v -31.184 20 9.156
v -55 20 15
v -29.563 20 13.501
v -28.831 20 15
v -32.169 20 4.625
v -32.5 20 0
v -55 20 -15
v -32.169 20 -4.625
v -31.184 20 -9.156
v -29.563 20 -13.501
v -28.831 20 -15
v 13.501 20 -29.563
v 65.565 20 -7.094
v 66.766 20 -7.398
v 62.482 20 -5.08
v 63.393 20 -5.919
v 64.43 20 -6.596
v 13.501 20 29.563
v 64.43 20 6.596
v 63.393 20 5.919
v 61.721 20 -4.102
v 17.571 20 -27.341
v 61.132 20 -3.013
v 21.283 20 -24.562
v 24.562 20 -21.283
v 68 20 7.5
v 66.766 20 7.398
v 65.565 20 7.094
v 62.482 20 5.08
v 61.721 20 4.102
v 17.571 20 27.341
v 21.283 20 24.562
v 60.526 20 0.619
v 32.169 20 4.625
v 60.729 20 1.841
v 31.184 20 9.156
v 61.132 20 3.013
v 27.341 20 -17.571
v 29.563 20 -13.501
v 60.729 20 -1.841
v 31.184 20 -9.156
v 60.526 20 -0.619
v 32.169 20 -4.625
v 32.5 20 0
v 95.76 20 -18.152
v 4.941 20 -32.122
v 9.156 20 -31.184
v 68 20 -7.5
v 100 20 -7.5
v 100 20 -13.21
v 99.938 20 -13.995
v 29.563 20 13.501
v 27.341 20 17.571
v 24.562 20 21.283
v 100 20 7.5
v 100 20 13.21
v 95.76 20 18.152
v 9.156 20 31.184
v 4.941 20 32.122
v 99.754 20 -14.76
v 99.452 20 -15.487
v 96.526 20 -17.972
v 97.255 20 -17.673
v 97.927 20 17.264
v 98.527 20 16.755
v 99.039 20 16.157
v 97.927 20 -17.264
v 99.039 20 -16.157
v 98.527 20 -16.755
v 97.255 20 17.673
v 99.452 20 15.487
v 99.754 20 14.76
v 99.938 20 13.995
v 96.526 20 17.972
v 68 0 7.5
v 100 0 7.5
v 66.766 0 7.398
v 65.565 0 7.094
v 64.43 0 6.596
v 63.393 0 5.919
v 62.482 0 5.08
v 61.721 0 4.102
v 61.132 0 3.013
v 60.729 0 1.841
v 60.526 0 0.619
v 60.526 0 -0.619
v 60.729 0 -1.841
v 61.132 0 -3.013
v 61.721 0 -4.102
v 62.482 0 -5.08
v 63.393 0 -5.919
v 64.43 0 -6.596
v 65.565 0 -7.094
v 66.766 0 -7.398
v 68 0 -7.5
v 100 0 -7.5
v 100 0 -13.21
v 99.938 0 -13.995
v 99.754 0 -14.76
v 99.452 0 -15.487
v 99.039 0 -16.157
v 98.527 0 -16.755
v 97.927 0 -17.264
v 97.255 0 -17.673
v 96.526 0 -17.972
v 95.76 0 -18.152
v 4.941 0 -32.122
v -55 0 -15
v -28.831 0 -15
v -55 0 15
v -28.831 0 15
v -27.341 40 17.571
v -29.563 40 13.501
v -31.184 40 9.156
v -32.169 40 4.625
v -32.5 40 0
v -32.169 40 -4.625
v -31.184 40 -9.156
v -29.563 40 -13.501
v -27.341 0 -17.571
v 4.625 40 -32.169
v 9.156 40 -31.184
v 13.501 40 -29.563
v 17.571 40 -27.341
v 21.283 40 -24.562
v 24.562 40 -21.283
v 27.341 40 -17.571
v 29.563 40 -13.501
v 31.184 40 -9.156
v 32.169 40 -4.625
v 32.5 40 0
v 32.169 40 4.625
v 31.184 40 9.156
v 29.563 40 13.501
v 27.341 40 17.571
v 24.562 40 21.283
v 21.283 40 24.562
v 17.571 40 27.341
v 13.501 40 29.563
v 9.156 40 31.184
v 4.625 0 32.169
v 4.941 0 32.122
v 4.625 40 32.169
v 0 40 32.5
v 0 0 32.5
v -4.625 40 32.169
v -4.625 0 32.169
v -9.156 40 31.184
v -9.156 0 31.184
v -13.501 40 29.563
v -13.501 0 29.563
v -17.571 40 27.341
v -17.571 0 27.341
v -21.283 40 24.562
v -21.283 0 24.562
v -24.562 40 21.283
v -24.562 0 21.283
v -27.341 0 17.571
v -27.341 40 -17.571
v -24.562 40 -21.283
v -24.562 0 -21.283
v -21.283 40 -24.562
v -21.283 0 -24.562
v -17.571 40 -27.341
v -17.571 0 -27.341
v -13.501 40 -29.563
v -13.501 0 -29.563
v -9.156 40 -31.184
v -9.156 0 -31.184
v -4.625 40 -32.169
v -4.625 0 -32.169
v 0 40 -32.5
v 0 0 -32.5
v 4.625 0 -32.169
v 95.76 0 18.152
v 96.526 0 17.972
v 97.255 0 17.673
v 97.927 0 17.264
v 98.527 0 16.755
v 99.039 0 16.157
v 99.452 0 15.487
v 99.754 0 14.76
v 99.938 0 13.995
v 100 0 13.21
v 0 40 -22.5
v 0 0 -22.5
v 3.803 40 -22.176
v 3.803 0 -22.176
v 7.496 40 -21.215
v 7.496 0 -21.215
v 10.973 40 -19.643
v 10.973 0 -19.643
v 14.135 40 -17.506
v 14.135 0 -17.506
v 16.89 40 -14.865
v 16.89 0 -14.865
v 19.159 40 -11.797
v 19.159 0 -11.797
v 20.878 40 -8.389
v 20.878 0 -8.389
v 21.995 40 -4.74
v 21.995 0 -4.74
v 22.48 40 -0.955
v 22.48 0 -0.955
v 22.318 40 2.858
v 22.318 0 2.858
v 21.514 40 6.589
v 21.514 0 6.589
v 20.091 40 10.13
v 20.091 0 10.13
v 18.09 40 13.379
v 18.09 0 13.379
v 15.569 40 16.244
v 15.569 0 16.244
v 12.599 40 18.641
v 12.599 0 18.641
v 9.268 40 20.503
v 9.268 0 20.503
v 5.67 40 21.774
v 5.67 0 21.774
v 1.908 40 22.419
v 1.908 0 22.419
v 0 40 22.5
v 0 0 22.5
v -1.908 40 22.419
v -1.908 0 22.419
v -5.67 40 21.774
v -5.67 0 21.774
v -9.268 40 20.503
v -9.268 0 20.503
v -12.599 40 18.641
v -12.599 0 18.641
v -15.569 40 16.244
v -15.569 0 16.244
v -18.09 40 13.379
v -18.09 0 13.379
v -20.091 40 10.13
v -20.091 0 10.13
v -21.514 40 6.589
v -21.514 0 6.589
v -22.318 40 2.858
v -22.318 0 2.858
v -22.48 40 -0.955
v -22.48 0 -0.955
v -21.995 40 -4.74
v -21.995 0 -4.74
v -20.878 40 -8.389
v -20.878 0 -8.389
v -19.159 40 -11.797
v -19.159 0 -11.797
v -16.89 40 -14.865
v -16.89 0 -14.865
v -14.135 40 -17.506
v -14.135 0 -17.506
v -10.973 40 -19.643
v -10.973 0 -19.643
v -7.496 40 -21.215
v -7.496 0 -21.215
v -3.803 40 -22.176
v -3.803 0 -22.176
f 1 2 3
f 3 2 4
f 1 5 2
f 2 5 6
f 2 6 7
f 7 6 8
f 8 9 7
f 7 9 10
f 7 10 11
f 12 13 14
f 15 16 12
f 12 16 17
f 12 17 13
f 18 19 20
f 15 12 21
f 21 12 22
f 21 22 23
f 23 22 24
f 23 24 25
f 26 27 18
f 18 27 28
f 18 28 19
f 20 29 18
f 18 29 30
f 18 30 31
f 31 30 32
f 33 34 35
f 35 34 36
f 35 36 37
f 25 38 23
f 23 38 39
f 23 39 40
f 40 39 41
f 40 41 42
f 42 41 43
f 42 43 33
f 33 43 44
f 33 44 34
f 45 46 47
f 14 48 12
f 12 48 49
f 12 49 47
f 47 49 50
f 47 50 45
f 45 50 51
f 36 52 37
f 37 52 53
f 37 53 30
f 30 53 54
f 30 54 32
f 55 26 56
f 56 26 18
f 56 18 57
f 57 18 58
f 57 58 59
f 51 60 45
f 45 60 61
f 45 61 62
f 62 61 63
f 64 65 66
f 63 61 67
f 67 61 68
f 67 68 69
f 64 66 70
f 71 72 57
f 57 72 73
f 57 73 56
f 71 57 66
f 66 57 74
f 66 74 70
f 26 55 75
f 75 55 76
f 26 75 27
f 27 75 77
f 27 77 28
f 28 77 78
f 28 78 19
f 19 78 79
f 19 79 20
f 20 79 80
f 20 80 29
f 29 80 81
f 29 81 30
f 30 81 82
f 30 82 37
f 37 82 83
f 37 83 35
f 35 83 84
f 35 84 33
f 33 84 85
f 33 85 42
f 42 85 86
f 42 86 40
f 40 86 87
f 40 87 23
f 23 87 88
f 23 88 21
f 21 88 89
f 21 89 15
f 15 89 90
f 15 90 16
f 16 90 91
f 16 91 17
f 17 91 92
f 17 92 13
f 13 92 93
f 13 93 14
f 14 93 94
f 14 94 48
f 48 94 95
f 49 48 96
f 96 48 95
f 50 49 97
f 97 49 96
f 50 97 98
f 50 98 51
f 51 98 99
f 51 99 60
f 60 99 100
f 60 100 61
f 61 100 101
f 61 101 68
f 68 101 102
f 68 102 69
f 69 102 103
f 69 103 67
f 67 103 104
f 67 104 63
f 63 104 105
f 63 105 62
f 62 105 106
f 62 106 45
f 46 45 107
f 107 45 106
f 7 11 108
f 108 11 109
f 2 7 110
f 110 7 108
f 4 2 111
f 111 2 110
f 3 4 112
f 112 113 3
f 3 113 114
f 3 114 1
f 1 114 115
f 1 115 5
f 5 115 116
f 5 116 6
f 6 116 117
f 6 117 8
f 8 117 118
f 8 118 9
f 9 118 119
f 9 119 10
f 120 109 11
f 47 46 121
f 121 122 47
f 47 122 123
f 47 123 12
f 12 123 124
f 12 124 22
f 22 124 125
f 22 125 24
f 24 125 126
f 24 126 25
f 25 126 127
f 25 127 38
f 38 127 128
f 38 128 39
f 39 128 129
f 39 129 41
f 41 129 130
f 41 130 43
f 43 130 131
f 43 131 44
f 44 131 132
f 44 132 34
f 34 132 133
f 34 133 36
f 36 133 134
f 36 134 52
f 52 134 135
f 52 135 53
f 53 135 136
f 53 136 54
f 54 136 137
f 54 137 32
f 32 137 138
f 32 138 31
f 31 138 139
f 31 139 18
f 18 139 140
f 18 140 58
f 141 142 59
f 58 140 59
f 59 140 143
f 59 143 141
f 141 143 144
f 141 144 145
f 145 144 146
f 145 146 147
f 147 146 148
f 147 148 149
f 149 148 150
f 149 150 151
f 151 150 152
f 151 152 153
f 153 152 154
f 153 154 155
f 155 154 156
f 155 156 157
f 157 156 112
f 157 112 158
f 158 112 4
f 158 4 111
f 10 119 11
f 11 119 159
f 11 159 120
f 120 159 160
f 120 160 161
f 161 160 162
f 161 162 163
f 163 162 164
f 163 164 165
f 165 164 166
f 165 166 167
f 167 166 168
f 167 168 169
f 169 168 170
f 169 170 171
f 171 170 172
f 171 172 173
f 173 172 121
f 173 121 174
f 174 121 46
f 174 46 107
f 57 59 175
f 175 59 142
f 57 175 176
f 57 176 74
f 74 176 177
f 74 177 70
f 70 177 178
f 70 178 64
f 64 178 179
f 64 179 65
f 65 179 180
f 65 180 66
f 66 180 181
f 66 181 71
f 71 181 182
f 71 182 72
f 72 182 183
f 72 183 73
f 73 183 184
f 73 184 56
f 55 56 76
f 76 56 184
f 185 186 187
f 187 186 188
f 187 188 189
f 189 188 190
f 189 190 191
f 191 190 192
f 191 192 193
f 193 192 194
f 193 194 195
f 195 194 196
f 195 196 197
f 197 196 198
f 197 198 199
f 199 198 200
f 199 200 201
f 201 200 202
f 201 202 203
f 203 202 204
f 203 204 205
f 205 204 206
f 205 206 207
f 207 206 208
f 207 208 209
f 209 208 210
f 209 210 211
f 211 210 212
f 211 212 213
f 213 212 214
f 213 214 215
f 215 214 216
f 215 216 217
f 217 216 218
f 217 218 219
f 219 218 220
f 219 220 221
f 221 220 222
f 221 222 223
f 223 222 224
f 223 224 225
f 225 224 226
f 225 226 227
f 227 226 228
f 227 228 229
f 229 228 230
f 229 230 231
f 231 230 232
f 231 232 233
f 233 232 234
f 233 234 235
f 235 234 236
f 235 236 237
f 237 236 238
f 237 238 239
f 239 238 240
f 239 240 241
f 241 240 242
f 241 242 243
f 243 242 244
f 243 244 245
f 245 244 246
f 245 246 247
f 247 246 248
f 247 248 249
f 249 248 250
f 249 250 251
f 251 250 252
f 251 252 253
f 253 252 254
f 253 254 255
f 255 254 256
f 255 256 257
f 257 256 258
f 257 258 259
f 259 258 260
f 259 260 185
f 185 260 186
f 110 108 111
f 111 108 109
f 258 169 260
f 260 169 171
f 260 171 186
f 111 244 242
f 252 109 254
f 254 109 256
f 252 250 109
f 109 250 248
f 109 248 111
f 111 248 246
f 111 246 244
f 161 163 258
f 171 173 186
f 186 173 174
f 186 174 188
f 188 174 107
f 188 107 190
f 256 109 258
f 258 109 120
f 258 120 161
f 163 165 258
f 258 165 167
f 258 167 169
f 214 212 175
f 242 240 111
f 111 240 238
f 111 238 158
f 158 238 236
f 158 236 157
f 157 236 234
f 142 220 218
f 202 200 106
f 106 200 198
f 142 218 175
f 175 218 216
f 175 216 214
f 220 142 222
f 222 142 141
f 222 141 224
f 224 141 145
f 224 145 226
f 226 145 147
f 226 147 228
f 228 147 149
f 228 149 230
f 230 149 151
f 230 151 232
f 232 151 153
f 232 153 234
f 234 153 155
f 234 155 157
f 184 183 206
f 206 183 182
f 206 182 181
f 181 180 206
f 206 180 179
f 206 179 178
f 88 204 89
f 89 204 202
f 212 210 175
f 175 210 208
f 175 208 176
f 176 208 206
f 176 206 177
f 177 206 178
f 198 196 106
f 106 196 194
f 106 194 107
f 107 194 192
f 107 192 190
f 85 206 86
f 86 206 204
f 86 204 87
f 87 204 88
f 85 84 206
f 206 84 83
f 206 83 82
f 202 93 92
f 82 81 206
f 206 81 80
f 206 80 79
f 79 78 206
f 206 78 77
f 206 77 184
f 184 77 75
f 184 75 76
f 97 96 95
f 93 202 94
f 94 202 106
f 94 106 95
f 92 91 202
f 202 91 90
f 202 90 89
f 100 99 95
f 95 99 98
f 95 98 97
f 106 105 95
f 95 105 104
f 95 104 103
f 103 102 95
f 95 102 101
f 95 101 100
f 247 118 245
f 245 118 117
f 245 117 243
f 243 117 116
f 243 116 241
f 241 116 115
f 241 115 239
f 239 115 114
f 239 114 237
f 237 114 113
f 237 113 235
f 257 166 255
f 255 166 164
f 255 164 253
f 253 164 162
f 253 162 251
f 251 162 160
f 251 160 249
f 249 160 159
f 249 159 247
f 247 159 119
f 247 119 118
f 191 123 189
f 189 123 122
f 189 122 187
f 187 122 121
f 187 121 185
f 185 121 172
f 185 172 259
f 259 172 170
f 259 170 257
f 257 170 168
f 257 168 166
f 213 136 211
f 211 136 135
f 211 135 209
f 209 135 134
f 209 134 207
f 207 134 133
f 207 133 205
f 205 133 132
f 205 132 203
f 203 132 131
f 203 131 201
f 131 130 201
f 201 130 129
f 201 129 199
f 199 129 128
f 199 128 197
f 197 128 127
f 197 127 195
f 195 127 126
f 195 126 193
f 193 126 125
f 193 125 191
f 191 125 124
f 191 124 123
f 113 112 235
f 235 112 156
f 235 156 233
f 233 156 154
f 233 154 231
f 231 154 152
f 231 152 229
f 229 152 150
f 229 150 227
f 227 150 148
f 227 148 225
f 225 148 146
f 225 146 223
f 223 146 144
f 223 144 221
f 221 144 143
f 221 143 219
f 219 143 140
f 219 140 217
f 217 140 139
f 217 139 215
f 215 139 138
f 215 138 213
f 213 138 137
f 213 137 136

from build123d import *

# Parameters (mm, degrees)
SKETCH1_R           = 22.5
BOSS_EXTRUDE4_DEPTH = 20
SKETCH1_6_R         = 22.5
BOSS_EXTRUDE5_DEPTH = 40


with BuildPart() as part:
    # Sketch1 → Boss-Extrude4 (new body)
    with BuildSketch(Plane(origin=(0, 0, 0), x_dir=(1, 0, 0), z_dir=(0, 1, 0))):
        with BuildLine():
            Line((68, 7.5), (100, 7.5))
            Line((100, 7.5), (100, 13.210304894))
            ThreePointArc((100, 13.210304894), (98.794789747, 16.466003095), (95.760171689, 18.152180955))
            Line((95.760171689, 18.152180955), (4.941115981, 32.122194397))
            ThreePointArc((4.941115981, 32.122194397), (-14.696219934, 28.987430373), (-28.831406487, 15))
            Line((-28.831406487, 15), (-55, 15))
            Line((-55, 15), (-55, -15))
            Line((-55, -15), (-28.831406487, -15))
            ThreePointArc((-28.831406487, -15), (-14.696219934, -28.987430373), (4.941115981, -32.122194397))
            Line((4.941115981, -32.122194397), (95.760171689, -18.152180955))
            ThreePointArc((95.760171689, -18.152180955), (98.794789747, -16.466003095), (100, -13.210304894))
            Line((100, -13.210304894), (100, -7.5))
            Line((100, -7.5), (68, -7.5))
            ThreePointArc((68, -7.5), (60.5, 0), (68, 7.5))
        make_face()
        Circle(SKETCH1_R, mode=Mode.SUBTRACT)
    extrude(amount=BOSS_EXTRUDE4_DEPTH)

    # Sketch1<6> → Boss-Extrude5 (add)
    with BuildSketch(Plane(origin=(0, 0, 0), x_dir=(1, 0, 0), z_dir=(0, 1, 0))):
        with BuildLine():
            ThreePointArc((4.941115981, -32.122194397), (24.666133355, -21.162038307), (32.5, 0))
            ThreePointArc((32.5, 0), (24.666133355, 21.162038307), (4.941115981, 32.122194397))
            ThreePointArc((4.941115981, 32.122194397), (-14.696219934, 28.987430373), (-28.831406487, 15))
            ThreePointArc((-28.831406487, 15), (-32.5, 0), (-28.831406487, -15))
            ThreePointArc((-28.831406487, -15), (-14.696219934, -28.987430373), (4.941115981, -32.122194397))
        make_face()
        Circle(SKETCH1_6_R, mode=Mode.SUBTRACT)
    extrude(amount=BOSS_EXTRUDE5_DEPTH)


solid = part.part
